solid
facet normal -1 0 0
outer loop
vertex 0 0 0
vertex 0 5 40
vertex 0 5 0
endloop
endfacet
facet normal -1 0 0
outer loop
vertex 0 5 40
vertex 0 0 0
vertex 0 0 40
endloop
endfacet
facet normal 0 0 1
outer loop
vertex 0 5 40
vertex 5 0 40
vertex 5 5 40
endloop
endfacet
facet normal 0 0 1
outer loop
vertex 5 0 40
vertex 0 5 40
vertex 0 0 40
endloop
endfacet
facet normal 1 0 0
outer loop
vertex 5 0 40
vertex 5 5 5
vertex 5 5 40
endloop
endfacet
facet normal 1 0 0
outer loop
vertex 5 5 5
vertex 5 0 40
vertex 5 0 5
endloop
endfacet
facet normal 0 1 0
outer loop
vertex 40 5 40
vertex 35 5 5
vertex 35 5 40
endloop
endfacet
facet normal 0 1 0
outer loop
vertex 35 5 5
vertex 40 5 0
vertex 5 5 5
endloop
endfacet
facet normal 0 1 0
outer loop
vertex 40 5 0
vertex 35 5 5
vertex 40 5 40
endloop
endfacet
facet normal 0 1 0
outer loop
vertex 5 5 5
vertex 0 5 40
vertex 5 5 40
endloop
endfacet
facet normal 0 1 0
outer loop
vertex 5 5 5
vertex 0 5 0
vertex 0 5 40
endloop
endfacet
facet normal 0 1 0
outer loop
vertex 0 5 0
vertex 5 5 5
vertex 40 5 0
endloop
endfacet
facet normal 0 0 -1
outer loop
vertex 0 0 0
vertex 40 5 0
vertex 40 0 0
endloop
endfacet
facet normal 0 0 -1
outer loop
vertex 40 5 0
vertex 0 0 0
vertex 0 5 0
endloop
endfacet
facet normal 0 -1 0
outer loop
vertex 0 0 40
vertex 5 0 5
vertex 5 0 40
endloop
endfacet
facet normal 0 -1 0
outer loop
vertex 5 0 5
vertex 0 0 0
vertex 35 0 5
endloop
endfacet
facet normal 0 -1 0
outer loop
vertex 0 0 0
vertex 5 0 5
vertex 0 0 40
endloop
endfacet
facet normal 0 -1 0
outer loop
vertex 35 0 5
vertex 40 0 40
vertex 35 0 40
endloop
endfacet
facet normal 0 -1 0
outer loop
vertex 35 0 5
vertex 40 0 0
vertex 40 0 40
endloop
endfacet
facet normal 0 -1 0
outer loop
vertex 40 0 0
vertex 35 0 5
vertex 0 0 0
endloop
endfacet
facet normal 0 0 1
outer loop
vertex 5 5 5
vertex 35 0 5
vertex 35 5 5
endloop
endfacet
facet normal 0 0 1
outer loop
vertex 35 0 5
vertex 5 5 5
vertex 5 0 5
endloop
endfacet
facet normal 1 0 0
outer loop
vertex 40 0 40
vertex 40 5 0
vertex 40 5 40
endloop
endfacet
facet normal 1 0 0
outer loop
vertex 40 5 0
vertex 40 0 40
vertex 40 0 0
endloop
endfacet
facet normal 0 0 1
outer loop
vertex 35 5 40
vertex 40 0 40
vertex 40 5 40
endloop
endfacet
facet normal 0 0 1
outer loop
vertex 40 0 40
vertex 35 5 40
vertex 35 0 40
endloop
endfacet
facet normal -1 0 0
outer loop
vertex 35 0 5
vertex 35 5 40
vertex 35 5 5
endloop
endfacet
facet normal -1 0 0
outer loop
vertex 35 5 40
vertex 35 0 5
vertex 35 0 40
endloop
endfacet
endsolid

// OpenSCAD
// Parameters
bracket_thickness = 5;
vertical_height = 40;
horizontal_length = 40;
round_radius = 5;

// Module for a single L-bracket
module L_bracket() {
    difference() {
        union() {
            // Vertical arm
            cube([bracket_thickness, bracket_thickness, vertical_height]);

            // Horizontal arm
            translate([0, 0, 0])
                cube([horizontal_length, bracket_thickness, bracket_thickness]);
        }

        // Rounded outer corner on top of vertical arm
        translate([-round_radius, -round_radius, vertical_height - round_radius])
            rotate([0, 0, 0])
                cylinder(h = bracket_thickness + 1, r = round_radius, $fn = 50);
    }
}

// Assembly of two mirrored L-brackets
translate([0, 0, 0])
    L_bracket();

translate([horizontal_length, 0, 0])
    mirror([1, 0, 0])
        L_bracket();
